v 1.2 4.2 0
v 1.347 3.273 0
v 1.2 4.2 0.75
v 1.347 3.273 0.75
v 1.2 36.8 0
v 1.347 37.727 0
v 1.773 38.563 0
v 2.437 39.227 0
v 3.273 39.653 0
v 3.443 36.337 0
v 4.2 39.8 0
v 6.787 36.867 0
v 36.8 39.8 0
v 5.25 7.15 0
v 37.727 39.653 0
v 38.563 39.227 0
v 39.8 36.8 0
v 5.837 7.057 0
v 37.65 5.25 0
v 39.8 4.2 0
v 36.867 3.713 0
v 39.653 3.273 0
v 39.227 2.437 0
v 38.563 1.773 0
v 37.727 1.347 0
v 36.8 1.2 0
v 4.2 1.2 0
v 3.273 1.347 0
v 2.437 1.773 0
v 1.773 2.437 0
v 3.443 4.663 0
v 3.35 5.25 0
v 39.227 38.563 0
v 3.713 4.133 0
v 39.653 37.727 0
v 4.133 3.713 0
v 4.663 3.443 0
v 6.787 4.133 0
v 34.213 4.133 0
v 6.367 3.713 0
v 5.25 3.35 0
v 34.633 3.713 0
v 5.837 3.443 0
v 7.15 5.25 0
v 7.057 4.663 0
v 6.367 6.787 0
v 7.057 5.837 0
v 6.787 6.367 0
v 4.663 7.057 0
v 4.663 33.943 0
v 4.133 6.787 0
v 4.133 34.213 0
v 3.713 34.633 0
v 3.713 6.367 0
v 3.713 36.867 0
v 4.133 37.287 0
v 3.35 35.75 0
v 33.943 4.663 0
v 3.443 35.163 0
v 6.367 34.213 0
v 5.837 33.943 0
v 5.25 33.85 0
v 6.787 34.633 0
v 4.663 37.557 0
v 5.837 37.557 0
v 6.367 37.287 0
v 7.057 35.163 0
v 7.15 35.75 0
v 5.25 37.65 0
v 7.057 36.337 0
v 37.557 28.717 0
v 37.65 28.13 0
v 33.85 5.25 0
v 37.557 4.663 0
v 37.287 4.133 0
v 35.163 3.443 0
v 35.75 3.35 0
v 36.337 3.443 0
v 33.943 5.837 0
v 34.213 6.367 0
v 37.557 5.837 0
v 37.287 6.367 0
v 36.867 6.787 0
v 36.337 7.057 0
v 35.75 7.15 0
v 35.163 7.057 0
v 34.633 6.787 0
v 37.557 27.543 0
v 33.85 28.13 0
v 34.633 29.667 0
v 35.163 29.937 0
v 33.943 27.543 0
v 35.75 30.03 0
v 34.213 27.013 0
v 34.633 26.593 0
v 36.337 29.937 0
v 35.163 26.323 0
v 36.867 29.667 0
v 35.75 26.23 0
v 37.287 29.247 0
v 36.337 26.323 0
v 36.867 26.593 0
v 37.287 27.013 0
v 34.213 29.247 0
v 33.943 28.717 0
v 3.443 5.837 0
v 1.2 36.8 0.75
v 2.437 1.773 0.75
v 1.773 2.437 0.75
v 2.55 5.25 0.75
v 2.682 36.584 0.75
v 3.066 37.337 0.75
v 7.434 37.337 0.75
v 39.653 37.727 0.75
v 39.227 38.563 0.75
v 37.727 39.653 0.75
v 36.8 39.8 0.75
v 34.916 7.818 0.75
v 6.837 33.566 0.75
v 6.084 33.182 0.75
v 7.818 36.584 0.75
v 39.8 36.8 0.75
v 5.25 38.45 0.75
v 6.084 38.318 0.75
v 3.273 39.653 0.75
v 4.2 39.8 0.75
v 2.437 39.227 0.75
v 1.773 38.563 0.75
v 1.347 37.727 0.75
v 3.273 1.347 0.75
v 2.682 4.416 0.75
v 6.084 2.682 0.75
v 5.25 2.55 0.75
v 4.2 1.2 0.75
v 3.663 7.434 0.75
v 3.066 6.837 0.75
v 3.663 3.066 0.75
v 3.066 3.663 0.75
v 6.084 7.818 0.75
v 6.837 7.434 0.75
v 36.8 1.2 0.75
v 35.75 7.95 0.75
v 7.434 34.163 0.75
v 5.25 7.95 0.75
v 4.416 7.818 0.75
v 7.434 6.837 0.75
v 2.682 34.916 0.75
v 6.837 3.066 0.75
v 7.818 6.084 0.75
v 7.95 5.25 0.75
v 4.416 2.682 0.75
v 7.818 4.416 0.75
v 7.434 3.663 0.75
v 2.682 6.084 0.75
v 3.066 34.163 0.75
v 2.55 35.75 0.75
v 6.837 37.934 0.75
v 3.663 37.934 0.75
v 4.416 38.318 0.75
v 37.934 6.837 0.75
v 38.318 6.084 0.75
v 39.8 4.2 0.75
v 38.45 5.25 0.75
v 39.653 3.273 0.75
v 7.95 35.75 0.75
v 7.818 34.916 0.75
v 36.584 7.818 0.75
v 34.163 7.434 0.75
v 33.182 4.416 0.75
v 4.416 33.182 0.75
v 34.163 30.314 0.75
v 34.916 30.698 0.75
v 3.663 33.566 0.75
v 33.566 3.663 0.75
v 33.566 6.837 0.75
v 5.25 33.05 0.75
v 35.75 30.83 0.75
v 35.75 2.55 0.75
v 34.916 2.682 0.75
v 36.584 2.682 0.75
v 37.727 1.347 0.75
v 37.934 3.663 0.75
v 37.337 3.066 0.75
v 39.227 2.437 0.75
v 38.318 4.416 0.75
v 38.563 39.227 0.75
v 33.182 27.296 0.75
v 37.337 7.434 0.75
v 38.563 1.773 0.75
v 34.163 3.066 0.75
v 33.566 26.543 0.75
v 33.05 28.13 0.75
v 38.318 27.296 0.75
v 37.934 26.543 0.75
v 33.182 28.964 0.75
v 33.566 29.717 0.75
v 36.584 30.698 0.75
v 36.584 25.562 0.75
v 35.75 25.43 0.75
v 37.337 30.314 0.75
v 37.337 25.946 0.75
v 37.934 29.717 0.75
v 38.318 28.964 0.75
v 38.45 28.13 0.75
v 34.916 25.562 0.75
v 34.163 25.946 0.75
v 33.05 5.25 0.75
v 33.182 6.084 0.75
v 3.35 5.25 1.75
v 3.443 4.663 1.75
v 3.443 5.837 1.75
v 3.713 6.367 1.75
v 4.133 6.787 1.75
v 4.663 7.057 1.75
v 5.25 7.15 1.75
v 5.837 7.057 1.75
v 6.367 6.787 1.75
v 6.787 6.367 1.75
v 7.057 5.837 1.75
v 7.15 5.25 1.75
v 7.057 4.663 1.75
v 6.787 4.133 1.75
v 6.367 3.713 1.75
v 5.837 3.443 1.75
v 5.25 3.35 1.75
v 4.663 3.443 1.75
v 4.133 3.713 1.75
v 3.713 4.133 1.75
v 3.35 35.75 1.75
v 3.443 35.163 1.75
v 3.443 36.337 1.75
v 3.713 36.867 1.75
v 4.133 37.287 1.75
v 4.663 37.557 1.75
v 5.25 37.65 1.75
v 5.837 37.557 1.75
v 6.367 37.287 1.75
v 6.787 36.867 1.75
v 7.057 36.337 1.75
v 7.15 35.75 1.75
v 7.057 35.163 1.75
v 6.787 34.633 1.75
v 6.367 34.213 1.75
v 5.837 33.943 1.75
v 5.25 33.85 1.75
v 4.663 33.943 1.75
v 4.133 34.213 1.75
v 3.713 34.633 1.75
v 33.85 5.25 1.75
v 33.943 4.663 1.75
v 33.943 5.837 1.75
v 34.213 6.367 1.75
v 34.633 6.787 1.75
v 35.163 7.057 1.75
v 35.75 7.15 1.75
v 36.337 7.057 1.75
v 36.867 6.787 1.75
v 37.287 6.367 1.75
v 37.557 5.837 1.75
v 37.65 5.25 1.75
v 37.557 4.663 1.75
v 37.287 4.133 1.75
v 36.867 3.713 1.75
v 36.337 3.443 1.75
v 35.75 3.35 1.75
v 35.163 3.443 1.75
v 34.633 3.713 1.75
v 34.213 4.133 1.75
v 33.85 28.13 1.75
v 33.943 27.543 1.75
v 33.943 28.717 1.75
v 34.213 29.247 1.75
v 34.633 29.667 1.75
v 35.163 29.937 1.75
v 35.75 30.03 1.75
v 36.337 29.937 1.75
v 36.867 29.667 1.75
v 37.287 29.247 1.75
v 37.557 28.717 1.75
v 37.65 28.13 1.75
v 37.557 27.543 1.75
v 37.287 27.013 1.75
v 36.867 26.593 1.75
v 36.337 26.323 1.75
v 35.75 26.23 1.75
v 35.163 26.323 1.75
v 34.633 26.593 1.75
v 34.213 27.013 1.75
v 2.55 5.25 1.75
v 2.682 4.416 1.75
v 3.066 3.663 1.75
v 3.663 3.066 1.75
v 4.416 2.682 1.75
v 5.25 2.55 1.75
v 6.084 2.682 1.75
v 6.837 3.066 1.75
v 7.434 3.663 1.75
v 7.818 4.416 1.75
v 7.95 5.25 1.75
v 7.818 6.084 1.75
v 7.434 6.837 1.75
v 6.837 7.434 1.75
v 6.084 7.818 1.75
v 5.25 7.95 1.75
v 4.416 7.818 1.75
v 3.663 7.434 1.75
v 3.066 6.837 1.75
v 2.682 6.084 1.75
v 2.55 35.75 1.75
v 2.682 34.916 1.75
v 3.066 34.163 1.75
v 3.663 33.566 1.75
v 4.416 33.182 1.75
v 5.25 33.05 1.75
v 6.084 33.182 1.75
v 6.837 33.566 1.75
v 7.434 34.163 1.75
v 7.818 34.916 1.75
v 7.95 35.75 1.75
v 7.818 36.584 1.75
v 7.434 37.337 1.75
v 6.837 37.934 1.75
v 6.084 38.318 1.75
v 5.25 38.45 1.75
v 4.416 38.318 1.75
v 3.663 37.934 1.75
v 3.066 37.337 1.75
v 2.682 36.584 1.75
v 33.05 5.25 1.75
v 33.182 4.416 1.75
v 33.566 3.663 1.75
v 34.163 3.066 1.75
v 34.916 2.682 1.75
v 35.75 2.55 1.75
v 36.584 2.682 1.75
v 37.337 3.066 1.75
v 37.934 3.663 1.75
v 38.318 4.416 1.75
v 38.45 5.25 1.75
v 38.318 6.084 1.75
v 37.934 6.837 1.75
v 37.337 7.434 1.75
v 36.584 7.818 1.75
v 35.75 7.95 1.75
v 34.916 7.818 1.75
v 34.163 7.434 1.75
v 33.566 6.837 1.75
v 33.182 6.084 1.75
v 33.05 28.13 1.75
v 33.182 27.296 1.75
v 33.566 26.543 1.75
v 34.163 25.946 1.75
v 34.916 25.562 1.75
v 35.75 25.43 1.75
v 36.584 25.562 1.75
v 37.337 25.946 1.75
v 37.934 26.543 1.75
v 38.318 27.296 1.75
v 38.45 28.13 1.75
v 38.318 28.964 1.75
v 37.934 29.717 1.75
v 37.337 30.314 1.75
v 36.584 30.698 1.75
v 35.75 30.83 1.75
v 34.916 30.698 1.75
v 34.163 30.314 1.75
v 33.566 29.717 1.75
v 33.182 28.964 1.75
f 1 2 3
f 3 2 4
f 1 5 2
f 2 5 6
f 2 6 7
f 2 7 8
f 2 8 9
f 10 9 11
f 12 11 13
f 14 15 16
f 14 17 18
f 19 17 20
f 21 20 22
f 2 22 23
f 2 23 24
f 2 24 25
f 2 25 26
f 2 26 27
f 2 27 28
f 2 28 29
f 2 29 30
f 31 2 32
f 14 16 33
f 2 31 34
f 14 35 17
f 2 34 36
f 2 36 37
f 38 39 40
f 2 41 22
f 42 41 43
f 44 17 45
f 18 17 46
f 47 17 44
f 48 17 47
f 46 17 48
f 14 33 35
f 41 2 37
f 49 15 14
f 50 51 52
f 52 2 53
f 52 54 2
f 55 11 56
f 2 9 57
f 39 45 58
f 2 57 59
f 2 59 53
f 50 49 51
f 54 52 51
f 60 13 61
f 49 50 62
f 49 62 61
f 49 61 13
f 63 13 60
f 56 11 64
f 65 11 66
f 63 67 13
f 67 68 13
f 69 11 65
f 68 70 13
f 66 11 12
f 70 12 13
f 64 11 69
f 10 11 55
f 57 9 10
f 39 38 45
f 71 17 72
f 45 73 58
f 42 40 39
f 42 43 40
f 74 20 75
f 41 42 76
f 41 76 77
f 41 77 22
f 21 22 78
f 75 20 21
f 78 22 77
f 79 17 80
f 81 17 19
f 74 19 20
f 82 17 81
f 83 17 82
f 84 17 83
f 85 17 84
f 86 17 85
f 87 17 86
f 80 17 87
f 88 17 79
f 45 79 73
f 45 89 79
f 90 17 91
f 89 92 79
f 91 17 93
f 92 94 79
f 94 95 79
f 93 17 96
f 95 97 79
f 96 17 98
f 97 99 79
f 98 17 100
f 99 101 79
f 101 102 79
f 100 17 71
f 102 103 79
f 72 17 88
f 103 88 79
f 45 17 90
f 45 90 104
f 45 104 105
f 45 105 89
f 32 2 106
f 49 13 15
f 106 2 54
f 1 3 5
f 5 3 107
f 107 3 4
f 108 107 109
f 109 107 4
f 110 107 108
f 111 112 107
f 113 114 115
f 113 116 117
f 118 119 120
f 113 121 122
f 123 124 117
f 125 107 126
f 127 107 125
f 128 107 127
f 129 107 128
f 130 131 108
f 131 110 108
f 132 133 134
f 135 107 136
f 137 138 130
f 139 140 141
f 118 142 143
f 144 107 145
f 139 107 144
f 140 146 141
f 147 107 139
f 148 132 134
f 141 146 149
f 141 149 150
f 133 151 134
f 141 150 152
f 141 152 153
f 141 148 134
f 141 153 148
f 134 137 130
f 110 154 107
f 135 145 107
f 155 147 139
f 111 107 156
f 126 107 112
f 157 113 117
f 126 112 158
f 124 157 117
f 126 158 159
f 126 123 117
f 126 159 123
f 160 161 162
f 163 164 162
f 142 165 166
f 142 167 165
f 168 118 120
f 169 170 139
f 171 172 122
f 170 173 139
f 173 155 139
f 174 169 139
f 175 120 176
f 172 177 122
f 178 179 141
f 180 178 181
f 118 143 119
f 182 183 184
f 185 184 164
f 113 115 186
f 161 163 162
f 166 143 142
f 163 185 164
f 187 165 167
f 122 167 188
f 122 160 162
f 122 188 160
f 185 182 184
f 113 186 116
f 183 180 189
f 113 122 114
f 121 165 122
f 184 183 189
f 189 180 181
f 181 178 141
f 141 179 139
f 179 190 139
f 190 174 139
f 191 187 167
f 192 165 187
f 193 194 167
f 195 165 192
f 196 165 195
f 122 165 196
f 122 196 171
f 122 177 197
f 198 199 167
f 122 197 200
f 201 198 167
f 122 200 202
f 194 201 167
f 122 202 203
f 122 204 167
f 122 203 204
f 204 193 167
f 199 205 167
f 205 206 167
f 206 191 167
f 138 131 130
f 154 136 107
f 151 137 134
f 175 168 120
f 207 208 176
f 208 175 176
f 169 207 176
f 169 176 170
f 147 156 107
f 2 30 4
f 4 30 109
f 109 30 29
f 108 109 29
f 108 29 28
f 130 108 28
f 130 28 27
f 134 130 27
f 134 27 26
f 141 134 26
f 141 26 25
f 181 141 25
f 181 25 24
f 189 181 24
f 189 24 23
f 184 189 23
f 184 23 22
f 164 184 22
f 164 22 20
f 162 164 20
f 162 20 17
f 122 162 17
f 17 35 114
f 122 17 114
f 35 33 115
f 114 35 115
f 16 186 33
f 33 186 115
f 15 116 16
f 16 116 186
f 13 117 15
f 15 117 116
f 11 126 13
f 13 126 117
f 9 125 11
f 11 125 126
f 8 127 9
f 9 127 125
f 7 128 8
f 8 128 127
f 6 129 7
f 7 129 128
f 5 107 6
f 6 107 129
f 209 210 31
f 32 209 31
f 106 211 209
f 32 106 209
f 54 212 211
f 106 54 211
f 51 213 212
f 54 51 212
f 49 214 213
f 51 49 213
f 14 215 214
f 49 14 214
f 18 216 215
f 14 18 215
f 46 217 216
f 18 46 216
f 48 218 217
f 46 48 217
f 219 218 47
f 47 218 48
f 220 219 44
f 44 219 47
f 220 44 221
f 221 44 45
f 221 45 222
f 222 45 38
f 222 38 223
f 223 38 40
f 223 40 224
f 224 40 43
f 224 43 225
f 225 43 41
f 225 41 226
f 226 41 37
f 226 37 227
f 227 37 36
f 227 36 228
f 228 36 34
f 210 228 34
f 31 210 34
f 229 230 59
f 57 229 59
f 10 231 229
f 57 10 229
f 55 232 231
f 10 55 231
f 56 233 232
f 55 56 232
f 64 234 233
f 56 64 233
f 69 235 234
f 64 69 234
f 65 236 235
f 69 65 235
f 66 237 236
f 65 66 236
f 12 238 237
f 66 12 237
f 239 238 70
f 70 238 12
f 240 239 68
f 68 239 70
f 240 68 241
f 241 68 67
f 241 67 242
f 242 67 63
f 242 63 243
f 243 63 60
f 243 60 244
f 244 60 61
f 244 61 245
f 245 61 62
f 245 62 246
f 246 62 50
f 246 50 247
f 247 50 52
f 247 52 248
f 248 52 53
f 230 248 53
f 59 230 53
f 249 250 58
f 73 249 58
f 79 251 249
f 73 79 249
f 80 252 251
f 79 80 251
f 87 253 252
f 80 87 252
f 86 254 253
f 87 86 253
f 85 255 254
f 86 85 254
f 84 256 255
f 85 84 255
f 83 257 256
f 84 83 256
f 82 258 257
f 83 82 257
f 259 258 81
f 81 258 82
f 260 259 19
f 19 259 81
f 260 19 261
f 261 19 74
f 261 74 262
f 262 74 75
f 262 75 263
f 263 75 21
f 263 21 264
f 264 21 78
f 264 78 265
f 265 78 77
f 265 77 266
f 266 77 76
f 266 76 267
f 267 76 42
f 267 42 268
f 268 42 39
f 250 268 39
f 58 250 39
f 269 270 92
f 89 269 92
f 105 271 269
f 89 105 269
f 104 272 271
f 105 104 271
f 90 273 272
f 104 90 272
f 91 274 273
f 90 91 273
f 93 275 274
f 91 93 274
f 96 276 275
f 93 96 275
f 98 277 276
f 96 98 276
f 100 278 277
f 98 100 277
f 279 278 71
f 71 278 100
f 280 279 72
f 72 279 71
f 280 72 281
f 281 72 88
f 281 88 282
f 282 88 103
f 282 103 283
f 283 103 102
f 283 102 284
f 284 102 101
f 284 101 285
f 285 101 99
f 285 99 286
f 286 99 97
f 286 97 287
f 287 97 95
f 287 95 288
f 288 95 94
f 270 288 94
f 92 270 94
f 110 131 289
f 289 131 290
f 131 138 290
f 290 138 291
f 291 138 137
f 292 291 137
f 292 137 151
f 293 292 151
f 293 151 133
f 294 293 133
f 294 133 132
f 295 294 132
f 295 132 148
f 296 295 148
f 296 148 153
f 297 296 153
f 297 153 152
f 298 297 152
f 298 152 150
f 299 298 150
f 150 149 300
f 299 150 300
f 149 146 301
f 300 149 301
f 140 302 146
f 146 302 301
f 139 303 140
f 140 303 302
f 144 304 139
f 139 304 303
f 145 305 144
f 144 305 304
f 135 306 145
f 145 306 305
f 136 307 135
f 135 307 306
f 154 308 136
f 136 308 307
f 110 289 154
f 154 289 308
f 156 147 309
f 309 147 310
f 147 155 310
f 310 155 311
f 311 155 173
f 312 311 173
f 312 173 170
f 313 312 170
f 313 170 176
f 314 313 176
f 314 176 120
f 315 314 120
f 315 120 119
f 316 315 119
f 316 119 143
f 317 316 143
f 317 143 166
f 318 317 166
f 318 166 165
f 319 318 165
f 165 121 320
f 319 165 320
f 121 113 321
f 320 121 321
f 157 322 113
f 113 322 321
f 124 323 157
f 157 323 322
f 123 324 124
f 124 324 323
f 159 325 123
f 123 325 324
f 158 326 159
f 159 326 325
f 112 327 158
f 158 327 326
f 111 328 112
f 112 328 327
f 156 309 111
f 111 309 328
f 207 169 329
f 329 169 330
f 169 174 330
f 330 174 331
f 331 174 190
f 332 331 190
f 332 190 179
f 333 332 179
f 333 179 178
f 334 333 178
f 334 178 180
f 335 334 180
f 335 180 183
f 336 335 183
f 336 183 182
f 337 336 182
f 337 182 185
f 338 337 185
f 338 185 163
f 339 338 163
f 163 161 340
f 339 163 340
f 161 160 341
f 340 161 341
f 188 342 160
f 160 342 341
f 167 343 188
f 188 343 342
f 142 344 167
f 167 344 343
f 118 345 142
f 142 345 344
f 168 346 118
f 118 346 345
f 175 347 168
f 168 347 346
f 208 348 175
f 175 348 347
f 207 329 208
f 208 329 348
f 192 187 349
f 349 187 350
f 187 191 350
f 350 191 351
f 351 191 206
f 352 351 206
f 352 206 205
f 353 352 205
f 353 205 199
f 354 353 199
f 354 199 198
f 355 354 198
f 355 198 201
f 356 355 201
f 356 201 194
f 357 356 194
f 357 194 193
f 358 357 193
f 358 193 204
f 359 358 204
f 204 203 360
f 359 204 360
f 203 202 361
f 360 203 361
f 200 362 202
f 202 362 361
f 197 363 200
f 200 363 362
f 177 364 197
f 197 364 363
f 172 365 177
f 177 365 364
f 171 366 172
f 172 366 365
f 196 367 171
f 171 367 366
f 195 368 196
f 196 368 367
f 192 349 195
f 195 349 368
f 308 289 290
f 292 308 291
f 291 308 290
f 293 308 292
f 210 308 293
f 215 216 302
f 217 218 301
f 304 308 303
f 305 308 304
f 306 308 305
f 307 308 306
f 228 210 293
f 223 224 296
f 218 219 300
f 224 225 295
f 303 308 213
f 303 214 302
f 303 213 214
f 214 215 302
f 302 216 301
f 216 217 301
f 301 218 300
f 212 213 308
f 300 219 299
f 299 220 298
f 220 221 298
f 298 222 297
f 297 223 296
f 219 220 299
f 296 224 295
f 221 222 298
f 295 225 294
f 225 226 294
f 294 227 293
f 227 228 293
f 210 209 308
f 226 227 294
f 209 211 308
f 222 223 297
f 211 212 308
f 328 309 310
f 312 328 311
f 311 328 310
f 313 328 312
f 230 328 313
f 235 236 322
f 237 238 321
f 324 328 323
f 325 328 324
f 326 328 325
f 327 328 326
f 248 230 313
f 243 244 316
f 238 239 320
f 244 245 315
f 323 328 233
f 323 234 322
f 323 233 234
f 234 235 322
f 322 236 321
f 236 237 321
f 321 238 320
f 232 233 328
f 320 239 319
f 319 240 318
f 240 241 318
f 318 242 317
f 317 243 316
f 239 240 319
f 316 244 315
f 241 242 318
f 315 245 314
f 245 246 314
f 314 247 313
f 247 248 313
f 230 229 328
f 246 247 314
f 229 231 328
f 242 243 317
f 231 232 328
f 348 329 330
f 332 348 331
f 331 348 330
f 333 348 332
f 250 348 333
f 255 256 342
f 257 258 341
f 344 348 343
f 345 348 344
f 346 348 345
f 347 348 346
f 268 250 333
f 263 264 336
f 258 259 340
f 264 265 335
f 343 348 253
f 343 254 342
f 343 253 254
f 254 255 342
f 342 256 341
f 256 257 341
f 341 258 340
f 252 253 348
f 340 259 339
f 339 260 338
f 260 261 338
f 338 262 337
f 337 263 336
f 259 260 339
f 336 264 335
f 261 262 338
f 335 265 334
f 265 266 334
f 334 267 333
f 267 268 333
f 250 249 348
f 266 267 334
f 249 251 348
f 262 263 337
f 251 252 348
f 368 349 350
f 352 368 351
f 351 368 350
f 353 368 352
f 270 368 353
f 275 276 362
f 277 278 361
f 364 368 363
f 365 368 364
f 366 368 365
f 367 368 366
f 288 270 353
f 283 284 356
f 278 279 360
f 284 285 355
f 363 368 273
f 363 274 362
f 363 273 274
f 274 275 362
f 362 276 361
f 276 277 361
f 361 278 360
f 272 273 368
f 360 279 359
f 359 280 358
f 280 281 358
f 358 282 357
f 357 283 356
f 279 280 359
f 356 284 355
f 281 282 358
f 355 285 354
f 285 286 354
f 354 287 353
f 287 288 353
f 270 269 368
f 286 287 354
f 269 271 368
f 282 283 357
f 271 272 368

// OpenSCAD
// file: sparky_case_settings.scad
// Coordinate system: (0,0) is SW corner of case
w_board = 36; // bounding box of board
t_board = 5; // maximum height of board + components

h_standoff = 1;
h_standoff_lid = 8;

t_base = 0.75; // three layers thick
w_wall = 0.8; // two lines wide
t_top = 0.75; // three layers thick
d_hole = 3.8; // M3 for board-case and case-frame
d_standoff = d_hole + 2*w_wall;

t_ribs = 2;
w_ribs = 0.8;
t_slots = 9; // height of slots for cable passage
t_slot_usb = 4;

w_case = 41;
t_case = t_slots + t_top; // height excluding standoffs
r_case = 3; // corner radii for base of case

// Four thru holes from SW in CW order
// See github/TauLabs/flight/targets/sparky/hw/assembly_v1.1.pdf
x = [2.75, 2.75,  33.25, 33.25];
y = [2.75, 33.25, 25.63, 2.75];

w_slots = y[2]-y[0]; // width of slows to allow right angle PWM pins through

so_inset = r_case;
x_standoff = [so_inset, so_inset, w_case-so_inset, w_case-so_inset];
y_standoff = [so_inset, w_case-so_inset, w_case-so_inset, so_inset];

x_offset = (w_case-w_board)/2;
y_offset = (w_case-w_board)/2;

$fn = 20;

// Define helper functions
module roundedRect(size, radius) {
  x = size[0];
  y = size[1];
  z = size[2];

  linear_extrude(height=z)
  hull() {
    translate([radius, radius, 0])
    circle(r=radius);

    translate([x - radius, radius, 0])
    circle(r=radius);

    translate([x - radius, y - radius, 0])
    circle(r=radius);

    translate([radius, y - radius, 0])
    circle(r=radius);
  }
}
// main file
include <sparky_case_settings.scad>;

difference() {

  // Plane and standoffs
  union() {
    translate([3/2*w_wall, 3/2*w_wall, 0])
    roundedRect([w_case-3*w_wall,w_case-3*w_wall,t_base],r_case);
    for (ii = [0:3]) {
      translate([x[ii]+x_offset, y[ii]+y_offset, t_base])
      cylinder(h=h_standoff, r=d_standoff/2);
    }
  };

  // Holes for frame and board mount
  union() {
    for (ii = [0:3]) {
      translate([x[ii]+x_offset, y[ii]+y_offset, 0])
      cylinder(h=t_base+h_standoff, r=d_hole/2);
    }
  };
};
